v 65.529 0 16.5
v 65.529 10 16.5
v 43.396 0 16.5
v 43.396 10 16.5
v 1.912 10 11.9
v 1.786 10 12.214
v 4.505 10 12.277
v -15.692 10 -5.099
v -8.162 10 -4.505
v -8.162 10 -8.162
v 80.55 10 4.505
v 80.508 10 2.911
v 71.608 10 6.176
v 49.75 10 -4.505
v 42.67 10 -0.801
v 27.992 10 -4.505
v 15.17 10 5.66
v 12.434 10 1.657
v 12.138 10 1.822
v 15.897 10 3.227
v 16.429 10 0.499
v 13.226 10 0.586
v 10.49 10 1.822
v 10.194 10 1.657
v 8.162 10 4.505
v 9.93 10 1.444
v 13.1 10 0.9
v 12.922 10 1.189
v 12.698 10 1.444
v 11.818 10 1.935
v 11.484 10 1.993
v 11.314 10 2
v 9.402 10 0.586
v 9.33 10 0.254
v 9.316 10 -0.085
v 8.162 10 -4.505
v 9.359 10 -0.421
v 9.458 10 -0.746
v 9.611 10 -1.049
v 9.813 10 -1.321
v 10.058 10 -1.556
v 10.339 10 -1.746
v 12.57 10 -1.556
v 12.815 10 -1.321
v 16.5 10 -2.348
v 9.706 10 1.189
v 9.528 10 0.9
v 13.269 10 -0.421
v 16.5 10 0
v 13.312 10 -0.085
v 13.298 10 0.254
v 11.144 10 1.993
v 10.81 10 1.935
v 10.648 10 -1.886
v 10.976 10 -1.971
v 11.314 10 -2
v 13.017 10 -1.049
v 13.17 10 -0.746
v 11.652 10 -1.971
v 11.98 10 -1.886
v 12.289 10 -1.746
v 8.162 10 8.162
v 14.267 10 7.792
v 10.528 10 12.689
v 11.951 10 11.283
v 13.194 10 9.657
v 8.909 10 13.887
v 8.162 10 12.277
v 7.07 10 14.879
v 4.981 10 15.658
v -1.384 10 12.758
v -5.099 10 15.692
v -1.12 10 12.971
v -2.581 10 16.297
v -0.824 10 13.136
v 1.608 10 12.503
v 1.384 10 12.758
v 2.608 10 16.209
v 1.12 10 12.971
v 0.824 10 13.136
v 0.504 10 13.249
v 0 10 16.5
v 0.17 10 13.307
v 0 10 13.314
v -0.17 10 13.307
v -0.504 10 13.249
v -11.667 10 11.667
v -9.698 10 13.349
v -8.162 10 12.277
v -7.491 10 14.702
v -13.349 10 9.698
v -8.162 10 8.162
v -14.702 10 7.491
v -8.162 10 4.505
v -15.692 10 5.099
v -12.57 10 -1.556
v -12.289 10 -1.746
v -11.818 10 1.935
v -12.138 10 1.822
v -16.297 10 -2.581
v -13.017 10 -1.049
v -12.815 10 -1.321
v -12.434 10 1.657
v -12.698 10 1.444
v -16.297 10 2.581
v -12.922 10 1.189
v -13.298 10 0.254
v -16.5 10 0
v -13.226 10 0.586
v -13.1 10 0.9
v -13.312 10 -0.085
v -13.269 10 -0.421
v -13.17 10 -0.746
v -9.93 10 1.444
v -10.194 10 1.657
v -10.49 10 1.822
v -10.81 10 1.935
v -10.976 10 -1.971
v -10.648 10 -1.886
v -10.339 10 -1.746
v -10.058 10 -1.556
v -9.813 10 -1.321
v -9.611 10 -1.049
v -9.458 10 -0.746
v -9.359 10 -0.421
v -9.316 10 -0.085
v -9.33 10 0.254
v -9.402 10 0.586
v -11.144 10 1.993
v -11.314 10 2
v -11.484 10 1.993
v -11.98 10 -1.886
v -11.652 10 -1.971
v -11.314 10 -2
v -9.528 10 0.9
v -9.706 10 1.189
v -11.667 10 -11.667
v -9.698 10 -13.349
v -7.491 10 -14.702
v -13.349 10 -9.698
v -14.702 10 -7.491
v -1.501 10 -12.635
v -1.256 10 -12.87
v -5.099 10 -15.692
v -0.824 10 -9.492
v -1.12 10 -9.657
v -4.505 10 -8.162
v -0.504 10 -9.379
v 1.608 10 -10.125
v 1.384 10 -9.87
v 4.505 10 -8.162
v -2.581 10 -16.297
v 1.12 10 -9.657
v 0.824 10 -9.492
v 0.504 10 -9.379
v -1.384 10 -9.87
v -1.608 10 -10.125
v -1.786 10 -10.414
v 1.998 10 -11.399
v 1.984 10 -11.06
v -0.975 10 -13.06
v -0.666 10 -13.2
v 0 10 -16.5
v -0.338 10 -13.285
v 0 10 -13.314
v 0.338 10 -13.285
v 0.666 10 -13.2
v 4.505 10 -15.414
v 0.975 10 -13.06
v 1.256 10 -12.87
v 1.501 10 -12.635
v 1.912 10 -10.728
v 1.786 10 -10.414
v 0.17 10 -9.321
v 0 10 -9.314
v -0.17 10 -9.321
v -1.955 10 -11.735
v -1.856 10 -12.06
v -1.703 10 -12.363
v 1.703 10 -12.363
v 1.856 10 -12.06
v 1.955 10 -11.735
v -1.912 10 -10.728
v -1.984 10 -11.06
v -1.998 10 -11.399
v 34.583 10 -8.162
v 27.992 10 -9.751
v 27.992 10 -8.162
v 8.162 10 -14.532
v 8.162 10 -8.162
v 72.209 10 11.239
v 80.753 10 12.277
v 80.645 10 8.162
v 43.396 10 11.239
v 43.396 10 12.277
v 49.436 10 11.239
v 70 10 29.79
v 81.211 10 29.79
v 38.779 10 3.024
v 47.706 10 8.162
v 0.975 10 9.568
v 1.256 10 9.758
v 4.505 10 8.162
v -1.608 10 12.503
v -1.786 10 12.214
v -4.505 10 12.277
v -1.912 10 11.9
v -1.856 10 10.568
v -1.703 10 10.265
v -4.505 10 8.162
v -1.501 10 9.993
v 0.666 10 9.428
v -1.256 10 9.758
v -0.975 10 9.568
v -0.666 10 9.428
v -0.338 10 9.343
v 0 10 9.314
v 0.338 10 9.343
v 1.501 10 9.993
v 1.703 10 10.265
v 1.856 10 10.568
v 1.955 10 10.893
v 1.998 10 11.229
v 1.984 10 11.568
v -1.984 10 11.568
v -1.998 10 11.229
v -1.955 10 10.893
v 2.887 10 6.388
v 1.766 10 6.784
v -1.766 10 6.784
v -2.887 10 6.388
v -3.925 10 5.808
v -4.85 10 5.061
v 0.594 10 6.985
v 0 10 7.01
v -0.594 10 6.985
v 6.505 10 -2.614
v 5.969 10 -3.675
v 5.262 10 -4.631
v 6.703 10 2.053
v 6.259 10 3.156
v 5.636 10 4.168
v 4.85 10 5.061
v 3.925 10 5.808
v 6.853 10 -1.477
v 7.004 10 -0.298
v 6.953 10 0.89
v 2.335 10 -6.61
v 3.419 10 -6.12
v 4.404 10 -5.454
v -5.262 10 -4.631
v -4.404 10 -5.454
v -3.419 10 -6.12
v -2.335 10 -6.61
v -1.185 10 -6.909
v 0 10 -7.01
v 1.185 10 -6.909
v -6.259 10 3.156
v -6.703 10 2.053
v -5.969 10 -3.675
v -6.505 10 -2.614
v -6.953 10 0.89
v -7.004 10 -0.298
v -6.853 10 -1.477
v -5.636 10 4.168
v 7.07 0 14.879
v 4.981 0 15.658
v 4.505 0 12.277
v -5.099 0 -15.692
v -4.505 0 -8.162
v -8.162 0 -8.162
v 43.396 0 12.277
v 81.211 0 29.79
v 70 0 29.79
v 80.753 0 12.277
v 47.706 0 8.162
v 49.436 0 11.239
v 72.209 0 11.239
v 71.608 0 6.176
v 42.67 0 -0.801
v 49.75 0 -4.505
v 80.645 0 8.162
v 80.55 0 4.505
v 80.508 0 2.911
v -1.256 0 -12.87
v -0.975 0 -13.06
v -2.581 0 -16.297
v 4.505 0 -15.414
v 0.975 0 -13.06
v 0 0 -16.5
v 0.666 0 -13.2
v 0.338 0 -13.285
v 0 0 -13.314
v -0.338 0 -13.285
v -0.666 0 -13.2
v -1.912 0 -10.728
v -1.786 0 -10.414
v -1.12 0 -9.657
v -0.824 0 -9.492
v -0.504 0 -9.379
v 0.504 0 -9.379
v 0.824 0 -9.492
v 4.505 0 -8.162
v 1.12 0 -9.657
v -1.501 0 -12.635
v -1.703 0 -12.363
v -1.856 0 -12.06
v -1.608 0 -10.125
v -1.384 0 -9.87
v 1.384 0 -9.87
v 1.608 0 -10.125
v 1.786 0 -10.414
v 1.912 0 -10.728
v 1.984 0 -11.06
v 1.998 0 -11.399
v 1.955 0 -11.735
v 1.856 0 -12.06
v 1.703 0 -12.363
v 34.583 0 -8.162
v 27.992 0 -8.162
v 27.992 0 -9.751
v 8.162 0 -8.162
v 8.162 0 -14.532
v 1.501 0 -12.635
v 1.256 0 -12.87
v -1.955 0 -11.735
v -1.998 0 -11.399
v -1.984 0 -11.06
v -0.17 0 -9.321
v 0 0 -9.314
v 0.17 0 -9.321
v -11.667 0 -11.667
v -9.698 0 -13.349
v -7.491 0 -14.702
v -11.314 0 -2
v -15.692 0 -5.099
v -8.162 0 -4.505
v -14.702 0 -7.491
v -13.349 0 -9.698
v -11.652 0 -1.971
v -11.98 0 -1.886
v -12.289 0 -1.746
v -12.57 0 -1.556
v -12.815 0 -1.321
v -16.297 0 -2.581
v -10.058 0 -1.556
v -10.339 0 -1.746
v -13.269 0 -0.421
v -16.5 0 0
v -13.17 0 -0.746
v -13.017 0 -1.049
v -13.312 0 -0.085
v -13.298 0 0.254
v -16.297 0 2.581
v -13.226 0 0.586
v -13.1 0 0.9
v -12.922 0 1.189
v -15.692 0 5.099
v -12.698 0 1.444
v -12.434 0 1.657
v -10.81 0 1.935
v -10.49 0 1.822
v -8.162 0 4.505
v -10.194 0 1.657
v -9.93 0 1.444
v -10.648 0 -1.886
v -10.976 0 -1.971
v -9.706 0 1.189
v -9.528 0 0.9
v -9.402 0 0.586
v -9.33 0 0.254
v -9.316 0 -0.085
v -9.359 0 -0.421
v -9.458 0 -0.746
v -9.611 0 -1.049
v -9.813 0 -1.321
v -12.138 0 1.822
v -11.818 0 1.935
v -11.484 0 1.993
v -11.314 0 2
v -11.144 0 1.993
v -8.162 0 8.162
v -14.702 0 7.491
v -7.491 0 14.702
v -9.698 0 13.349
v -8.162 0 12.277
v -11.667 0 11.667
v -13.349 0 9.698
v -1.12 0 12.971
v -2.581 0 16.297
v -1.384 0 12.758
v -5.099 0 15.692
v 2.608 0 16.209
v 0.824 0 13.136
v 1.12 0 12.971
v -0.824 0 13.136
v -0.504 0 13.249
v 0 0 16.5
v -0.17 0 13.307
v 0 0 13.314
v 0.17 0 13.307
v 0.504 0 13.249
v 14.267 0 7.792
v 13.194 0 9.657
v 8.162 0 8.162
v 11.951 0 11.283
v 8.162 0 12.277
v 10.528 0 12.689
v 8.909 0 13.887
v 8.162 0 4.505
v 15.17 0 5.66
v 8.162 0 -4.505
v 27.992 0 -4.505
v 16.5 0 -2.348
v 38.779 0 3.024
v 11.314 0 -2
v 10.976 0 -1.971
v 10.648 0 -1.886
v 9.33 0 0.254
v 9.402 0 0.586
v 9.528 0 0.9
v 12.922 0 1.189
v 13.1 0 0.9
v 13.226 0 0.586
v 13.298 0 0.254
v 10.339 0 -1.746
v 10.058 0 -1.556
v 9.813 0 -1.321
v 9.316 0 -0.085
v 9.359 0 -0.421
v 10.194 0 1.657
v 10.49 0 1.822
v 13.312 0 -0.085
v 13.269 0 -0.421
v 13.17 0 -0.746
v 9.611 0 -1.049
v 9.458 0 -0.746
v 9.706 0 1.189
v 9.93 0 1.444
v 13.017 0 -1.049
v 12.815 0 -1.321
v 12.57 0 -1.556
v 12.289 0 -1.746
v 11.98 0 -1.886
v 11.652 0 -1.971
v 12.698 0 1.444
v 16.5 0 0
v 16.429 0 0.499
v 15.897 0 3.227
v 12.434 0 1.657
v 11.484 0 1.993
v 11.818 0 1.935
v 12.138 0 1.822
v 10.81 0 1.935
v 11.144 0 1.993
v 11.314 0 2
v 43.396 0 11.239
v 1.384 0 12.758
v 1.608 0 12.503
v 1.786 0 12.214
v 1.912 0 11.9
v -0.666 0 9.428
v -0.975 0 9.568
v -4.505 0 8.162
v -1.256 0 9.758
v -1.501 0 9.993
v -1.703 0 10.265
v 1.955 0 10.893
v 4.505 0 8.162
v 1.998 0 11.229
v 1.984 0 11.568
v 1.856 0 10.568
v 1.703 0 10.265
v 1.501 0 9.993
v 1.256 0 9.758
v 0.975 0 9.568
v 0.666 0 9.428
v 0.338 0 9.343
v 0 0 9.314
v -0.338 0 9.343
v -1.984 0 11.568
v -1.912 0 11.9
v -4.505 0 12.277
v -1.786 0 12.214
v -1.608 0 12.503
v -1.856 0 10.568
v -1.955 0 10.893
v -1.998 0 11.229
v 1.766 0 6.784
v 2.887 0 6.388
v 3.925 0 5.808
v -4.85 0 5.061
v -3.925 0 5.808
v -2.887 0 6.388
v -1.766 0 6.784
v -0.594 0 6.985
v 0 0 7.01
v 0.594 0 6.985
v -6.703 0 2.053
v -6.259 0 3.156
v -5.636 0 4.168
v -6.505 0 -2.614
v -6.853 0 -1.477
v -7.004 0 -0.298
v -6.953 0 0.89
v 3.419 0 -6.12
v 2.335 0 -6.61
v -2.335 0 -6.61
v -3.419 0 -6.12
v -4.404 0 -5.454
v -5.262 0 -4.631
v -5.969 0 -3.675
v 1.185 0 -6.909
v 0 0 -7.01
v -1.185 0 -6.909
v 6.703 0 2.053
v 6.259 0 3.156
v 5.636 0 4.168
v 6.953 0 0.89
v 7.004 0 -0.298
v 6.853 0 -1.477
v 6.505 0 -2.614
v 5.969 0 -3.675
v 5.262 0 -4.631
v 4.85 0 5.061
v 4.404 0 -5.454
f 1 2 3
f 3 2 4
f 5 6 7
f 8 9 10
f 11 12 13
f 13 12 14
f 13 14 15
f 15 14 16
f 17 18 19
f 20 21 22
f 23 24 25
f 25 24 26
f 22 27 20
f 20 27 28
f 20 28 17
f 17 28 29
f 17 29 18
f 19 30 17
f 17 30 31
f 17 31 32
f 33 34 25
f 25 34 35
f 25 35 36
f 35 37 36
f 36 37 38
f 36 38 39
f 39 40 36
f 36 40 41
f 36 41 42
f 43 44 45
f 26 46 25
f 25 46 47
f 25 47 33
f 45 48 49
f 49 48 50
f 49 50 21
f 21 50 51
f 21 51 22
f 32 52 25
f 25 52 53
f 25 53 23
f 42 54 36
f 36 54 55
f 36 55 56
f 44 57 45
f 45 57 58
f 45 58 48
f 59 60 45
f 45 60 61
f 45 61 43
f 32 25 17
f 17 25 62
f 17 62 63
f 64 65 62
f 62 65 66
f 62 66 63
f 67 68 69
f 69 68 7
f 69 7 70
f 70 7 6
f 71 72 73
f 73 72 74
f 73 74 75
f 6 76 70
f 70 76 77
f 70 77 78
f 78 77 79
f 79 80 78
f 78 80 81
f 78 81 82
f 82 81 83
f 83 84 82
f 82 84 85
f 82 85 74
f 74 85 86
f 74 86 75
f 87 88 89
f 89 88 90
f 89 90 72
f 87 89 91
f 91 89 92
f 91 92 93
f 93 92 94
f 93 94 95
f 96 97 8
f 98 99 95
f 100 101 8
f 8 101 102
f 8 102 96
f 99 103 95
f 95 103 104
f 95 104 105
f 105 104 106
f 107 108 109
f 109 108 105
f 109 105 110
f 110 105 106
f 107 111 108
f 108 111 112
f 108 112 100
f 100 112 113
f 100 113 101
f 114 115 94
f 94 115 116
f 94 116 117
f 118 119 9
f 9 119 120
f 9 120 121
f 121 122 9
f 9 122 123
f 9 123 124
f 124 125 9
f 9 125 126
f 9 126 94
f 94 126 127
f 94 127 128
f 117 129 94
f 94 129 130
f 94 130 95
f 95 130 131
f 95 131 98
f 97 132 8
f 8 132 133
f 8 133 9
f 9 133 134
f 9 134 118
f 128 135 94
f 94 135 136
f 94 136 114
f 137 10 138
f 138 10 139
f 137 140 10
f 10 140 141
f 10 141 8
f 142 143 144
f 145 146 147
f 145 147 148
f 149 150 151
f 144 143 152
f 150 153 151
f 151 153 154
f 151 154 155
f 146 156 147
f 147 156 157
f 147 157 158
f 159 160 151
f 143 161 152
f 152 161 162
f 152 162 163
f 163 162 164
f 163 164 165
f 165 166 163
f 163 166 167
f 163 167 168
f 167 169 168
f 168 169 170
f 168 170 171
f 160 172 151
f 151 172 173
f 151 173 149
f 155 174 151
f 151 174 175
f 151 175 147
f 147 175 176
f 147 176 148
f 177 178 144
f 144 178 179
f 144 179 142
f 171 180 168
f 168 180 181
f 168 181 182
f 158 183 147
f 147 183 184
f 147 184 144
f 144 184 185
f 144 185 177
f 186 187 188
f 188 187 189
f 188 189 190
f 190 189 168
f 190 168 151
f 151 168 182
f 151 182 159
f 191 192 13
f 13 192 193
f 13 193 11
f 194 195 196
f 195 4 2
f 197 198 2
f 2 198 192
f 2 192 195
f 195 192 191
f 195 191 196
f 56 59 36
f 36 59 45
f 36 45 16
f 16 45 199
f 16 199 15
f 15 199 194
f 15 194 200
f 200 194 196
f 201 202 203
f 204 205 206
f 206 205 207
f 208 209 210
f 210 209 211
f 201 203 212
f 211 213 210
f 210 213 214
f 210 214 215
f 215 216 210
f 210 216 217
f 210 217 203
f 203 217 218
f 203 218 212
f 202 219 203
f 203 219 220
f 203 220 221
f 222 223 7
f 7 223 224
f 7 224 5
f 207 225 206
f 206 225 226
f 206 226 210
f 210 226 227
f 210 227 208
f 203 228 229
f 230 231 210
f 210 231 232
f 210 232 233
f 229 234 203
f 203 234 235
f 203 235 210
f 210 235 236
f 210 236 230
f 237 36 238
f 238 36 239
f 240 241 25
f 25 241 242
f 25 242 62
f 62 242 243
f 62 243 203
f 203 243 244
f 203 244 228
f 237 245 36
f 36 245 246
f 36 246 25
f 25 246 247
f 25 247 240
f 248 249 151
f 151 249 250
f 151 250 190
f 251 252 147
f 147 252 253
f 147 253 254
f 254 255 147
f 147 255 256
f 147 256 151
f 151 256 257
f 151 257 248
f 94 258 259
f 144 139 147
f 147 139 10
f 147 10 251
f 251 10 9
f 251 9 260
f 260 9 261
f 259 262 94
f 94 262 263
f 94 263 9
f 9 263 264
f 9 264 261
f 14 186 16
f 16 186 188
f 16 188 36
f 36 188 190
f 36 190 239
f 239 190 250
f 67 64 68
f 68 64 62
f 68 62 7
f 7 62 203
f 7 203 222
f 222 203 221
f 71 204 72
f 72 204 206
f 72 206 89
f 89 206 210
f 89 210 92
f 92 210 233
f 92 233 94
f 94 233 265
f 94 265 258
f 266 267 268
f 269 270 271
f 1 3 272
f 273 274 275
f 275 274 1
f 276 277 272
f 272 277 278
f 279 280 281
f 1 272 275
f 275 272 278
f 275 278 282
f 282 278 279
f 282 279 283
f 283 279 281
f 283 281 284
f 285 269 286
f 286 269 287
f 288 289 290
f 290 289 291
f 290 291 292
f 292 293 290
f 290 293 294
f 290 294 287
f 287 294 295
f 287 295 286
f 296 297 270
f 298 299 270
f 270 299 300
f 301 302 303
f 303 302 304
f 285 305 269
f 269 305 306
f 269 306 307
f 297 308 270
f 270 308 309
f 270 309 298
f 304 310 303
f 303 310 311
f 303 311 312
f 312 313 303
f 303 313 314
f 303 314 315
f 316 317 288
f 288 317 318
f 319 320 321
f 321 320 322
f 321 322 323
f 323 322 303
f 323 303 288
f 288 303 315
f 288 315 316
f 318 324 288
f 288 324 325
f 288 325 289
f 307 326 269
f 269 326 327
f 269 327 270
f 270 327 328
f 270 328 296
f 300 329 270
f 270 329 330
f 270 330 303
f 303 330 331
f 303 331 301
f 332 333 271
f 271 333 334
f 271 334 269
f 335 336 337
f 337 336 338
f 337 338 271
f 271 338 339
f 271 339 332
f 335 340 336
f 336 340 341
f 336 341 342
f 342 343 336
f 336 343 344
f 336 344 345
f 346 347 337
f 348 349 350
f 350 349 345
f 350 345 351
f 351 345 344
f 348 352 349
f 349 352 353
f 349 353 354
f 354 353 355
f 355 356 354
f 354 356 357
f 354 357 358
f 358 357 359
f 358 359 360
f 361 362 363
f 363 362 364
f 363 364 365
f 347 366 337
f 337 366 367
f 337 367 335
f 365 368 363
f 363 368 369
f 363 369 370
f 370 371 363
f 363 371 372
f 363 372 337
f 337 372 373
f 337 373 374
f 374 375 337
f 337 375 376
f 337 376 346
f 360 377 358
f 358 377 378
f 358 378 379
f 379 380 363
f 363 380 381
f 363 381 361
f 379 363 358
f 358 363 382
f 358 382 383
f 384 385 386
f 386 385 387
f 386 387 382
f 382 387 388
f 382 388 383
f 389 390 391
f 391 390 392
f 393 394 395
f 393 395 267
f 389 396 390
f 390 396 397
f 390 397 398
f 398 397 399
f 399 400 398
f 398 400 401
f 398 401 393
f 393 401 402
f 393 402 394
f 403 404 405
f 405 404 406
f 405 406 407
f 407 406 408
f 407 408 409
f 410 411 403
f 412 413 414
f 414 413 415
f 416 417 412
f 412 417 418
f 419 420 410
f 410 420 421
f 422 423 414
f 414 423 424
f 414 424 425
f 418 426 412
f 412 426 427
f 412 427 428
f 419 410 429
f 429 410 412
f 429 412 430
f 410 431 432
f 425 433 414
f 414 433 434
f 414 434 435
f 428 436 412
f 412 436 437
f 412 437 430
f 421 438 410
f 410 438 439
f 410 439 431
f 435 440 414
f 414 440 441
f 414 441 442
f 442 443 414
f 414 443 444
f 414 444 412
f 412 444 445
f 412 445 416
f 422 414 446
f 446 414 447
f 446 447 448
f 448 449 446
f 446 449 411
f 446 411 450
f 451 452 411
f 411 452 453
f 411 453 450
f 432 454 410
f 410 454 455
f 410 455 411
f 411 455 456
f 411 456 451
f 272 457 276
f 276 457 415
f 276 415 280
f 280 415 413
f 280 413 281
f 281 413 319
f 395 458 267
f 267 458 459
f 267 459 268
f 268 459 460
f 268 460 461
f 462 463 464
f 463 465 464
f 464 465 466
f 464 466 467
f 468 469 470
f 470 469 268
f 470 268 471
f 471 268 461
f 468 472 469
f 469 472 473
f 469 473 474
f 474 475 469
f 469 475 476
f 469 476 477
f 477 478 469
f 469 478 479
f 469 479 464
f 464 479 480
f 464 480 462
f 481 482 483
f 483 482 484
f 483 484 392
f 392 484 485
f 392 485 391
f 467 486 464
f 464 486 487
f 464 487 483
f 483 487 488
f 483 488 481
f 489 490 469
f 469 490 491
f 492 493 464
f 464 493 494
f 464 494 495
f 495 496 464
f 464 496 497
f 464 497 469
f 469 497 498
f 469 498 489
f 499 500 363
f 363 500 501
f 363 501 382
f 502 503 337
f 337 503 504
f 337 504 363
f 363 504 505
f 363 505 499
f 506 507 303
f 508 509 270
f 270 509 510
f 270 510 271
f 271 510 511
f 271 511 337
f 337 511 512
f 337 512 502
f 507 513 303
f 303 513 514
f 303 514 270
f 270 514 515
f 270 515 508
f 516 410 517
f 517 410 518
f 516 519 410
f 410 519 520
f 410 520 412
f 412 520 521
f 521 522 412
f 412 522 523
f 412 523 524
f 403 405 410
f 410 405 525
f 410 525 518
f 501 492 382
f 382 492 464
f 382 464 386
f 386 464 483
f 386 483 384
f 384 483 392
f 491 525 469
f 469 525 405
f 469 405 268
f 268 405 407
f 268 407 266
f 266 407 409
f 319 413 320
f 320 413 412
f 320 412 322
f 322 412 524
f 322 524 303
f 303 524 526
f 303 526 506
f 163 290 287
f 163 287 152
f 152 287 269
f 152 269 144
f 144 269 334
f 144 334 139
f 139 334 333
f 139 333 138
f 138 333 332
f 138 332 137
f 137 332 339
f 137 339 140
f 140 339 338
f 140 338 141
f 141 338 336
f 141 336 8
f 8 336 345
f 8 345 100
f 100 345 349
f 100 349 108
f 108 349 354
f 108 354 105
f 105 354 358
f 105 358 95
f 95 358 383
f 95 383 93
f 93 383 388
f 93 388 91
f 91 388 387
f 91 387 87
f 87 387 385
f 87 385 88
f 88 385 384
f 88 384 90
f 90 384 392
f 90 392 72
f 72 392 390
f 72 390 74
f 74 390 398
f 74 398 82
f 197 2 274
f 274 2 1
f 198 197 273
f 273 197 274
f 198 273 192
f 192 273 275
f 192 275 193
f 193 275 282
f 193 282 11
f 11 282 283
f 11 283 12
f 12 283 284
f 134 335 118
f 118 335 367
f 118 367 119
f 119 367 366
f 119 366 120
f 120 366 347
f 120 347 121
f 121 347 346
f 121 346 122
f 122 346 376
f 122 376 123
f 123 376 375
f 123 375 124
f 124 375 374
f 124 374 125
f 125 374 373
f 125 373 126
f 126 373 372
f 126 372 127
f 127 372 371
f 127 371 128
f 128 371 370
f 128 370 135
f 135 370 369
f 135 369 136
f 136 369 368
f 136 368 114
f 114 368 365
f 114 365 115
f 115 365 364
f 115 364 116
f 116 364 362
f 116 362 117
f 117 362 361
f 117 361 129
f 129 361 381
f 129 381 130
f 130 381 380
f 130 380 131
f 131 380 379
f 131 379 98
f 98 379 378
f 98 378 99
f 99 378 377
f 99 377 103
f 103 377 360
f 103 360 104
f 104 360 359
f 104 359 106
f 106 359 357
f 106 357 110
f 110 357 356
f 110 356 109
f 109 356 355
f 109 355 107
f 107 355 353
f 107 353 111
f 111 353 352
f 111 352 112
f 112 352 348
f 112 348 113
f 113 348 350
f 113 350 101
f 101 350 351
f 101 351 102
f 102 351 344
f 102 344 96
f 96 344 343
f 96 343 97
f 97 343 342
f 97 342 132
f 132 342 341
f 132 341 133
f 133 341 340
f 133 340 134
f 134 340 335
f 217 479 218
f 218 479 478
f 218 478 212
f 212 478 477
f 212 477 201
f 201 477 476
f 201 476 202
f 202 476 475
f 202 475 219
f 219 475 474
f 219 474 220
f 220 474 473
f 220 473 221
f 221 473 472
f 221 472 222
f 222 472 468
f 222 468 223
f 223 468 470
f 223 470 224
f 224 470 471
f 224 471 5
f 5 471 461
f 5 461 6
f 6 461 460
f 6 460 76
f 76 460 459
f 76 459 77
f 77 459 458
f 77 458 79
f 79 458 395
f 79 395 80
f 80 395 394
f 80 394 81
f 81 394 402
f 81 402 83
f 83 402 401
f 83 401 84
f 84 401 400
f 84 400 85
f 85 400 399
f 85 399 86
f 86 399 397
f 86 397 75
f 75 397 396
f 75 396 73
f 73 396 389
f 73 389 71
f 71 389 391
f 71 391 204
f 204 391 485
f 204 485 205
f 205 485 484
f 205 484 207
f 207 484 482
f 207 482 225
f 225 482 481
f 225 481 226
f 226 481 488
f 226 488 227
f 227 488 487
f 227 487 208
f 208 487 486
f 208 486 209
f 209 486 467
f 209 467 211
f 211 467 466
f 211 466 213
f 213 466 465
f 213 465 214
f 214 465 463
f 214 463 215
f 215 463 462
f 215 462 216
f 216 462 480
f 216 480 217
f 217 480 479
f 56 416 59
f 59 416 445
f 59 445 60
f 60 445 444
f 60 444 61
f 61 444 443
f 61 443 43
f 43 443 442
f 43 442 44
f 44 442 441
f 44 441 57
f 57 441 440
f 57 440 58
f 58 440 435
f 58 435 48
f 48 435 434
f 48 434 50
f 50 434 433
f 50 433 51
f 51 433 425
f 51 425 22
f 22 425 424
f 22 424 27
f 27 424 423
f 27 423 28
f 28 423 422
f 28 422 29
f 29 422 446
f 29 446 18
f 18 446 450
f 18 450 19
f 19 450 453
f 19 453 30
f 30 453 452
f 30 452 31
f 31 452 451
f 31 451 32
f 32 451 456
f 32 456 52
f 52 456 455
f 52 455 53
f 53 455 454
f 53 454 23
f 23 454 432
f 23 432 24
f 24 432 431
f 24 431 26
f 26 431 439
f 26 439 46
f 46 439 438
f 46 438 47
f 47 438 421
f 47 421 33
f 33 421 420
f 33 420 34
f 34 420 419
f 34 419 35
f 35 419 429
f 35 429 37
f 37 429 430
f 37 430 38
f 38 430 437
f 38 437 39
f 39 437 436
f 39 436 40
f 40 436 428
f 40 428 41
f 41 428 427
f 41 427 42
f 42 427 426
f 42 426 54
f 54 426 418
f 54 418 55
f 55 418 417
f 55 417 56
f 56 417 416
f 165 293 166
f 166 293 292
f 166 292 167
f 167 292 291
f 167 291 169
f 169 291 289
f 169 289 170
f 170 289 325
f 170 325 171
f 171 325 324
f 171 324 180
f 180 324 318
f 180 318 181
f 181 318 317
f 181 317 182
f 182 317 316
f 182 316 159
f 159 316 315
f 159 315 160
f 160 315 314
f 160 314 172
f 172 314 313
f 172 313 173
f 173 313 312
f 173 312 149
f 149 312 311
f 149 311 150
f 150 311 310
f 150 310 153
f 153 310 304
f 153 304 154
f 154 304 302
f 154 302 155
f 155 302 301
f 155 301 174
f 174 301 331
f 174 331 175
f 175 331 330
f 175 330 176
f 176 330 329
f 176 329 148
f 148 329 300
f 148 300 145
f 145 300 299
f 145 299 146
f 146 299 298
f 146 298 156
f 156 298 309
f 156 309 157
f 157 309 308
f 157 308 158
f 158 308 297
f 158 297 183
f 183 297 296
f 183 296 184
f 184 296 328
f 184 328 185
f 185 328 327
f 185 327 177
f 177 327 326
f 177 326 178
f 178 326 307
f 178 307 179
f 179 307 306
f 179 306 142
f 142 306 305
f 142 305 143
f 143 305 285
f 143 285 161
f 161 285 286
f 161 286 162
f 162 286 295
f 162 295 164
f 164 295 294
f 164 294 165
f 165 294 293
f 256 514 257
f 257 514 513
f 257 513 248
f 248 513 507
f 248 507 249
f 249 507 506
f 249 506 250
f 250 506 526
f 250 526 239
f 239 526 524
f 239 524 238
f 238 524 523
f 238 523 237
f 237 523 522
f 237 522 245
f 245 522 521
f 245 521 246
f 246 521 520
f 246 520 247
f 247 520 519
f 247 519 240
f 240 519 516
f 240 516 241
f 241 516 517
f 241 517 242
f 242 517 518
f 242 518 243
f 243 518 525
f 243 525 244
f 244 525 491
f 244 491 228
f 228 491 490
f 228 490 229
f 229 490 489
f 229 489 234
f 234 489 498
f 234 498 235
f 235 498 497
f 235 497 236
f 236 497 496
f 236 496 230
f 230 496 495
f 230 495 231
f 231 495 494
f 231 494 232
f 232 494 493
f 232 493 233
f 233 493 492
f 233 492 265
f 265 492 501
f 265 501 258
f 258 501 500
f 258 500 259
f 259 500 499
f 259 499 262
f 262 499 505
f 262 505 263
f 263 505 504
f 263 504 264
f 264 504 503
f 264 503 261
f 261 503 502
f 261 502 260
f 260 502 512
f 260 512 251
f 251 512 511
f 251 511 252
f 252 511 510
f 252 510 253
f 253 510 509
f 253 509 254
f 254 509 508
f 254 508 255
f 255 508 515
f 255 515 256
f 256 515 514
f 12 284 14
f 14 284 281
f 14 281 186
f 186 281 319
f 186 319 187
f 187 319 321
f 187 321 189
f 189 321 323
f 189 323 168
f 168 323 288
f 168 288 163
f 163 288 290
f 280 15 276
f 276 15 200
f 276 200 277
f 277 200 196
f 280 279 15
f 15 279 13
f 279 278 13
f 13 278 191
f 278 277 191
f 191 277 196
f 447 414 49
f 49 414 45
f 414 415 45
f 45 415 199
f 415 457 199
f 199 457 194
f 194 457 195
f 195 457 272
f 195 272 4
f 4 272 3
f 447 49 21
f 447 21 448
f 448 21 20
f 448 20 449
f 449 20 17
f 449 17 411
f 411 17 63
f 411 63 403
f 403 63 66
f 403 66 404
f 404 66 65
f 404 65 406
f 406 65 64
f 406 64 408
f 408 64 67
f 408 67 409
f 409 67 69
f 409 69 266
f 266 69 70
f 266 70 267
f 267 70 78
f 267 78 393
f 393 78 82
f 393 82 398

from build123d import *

# Parameters (mm, degrees)
SKETCH1_R           = 2
SKETCH1_R_2         = 7.01
BOSS_EXTRUDE1_DEPTH = 10
CUT_EXTRUDE1_DEPTH  = 10


with BuildPart() as part:
    # Sketch1 → Boss-Extrude1 (new body)
    # profile 1 of 2: a face of its own
    with BuildSketch(Plane(origin=(0, 0, 0), x_dir=(1, 0, 0), z_dir=(0, 1, 0))):
        with BuildLine():
            ThreePointArc((0, 16.5), (-16.5, 0), (0, -16.5))
            ThreePointArc((0, -16.5), (11.66726189, -11.66726189), (16.5, 0))
            ThreePointArc((16.5, 0), (14.076910684, 8.607588837), (7.519322958, 14.68706173))
            Line((7.519322958, 14.68706173), (0, 16.5))
        make_face()
        with Locations(Location((0, -11.314, 0), (0, 0, 270))):
            Circle(SKETCH1_R, mode=Mode.SUBTRACT)
        with Locations(Location((-11.314, 0, 0), (0, 0, 270))):
            Circle(SKETCH1_R, mode=Mode.SUBTRACT)
        with Locations(Location((0, 0, 0), (0, 0, 270))):
            Circle(SKETCH1_R_2, mode=Mode.SUBTRACT)
        with Locations(Location((11.314, 0, 0), (0, 0, 270))):
            Circle(SKETCH1_R, mode=Mode.SUBTRACT)
        with Locations(Location((0, 11.314, 0), (0, 0, 270))):
            Circle(SKETCH1_R, mode=Mode.SUBTRACT)
    # profile 2 of 2: a face of its own
    with BuildSketch(Plane(origin=(0, 0, 0), x_dir=(1, 0, 0), z_dir=(0, 1, 0))):
        with BuildLine():
            ThreePointArc((16.5, 0), (11.66726189, -11.66726189), (0, -16.5))
            Line((0, -16.5), (19.087841457, -16.5))
            Line((19.087841457, -16.5), (42.57033822, -16.5))
            Line((42.57033822, -16.5), (65.434874542, -16.5))
            Line((65.434874542, -16.5), (65.529162168, -16.5))
            Line((65.529162168, -16.5), (70, -29.789637879))
            Line((70, -29.789637879), (81.21126045, -29.789637879))
            Line((81.21126045, -29.789637879), (80.86351064, -16.5))
            Line((80.86351064, -16.5), (80.641091233, -8))
            Line((80.641091233, -8), (80.507921559, -2.910775794))
            Line((80.507921559, -2.910775794), (7.519322958, 14.68706173))
            ThreePointArc((7.519322958, 14.68706173), (14.076910684, 8.607588837), (16.5, 0))
        make_face()
    extrude(amount=BOSS_EXTRUDE1_DEPTH)

    # Sketch2 → Cut-Extrude1 (cut)
    with BuildSketch(Plane(origin=(0, 10, 0), x_dir=(1, 0, 0), z_dir=(0, 1, 0))):
        with BuildLine():
            add(Edge.make_bspline(
                [(0, -16.5), (14.394754893, -15.656765563), (16.5, 0)],
                knots=[0, 0, 0, 1, 1, 1], degree=2))
            Line((0, -16.5), (43.395579658, -16.5))
            Line((43.395579658, -16.5), (43.395579658, -11.239382549))
            Line((43.395579658, -11.239382549), (38.779311098, -3.023634866))
            Line((38.779311098, -3.023634866), (16.5, 2.347994462))
            Line((16.5, 2.347994462), (16.5, 0))
        make_face()
        Polygon((42.670487587, 0.800617581), (49.435529091, -11.239382549), (72.209122235, -11.239382549), (71.607948341, -6.176317755), align=None)
    extrude(amount=-CUT_EXTRUDE1_DEPTH, mode=Mode.SUBTRACT)


solid = part.part
